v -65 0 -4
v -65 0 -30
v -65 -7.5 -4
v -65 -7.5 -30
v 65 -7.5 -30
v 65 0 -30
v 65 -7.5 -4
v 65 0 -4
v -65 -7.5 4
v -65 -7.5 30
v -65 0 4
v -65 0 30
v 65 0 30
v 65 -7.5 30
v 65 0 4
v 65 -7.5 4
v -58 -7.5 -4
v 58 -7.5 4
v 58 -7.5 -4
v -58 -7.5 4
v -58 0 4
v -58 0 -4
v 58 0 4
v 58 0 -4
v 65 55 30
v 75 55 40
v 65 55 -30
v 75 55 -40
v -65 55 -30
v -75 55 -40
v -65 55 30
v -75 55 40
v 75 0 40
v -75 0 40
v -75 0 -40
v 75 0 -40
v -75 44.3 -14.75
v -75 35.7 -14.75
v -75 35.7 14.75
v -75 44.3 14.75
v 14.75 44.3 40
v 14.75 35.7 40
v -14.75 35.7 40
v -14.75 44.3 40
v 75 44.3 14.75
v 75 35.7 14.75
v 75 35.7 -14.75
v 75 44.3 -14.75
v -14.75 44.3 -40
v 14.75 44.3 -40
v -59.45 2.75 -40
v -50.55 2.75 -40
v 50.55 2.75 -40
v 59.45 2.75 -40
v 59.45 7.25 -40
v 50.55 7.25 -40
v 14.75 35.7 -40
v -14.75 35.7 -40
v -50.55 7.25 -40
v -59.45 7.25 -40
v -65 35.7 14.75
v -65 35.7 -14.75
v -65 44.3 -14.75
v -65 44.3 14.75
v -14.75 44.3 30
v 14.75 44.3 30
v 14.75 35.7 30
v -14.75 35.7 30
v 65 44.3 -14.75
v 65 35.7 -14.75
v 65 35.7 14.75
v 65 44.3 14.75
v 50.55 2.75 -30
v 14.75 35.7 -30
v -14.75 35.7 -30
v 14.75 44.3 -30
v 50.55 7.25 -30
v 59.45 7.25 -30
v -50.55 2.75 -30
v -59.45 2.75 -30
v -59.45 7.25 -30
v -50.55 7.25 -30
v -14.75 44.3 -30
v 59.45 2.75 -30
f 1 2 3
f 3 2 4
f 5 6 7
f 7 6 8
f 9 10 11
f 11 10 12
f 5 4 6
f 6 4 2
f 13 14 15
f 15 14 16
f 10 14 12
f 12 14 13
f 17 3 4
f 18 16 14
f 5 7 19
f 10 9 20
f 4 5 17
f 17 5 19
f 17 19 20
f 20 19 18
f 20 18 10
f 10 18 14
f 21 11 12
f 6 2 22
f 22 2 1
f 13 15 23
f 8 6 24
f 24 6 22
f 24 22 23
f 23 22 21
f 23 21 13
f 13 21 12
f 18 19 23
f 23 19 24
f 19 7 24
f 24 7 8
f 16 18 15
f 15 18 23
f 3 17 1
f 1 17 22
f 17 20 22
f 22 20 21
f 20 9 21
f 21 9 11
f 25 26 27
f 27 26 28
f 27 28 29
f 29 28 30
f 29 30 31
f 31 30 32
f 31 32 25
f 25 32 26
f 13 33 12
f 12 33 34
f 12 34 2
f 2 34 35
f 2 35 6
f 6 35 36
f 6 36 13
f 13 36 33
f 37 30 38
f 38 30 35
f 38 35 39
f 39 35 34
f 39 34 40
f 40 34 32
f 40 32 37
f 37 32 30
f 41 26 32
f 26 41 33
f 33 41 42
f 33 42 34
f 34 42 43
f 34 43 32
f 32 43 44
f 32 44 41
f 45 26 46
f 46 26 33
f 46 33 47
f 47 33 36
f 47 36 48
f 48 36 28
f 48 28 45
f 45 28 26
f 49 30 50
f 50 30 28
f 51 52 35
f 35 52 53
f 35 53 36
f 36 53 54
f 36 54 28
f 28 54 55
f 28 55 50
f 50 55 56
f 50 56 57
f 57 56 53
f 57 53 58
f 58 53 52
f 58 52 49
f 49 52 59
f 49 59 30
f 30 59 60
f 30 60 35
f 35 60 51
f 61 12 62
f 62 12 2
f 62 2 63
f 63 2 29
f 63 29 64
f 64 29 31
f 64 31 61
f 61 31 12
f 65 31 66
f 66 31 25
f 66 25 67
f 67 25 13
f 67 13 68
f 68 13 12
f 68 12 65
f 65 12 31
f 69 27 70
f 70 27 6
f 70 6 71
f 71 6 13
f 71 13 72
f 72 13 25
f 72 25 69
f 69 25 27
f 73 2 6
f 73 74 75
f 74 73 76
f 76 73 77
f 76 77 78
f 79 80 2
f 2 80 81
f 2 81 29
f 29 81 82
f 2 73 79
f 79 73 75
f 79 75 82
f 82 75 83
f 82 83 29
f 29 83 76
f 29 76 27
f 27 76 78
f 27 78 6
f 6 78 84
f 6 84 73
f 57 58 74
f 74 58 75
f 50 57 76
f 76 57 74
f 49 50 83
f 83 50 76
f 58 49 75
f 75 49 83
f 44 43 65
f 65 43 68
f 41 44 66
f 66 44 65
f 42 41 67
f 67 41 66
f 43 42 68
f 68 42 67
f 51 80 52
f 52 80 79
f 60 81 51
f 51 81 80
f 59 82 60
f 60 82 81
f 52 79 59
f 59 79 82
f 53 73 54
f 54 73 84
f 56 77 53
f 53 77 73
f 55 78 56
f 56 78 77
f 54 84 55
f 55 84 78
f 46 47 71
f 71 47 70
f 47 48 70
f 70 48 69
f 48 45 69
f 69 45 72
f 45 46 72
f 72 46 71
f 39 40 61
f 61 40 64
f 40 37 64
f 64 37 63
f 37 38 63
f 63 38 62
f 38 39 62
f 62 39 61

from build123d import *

# Parameters (mm, degrees)
CROQUIS1_W              = 130
CROQUIS1_H              = 60
SALIENTE_EXTRUIR1_DEPTH = 7.5
CROQUIS1_3_W            = 150
CROQUIS1_3_H            = 80
CROQUIS1_3_W_2          = 130
CROQUIS1_3_H_2          = 60
SALIENTE_EXTRUIR2_DEPTH = 55
CROQUIS2_W              = 7
CROQUIS2_H              = 8
CORTAR_EXTRUIR1_DEPTH   = 102.242283657
CROQUIS3_W              = 29.5
CROQUIS3_H              = 8.6
CORTAR_EXTRUIR2_DEPTH   = 123.678441464
CROQUIS4_W              = 8.9
CROQUIS4_H              = 4.5
CORTAR_EXTRUIR3_DEPTH   = 10
CROQUIS5_W              = 29.5
CROQUIS5_H              = 8.6
CORTAR_EXTRUIR4_DEPTH   = 165.69669092


with BuildPart() as part:
    # Croquis1 → Saliente-Extruir1 (new body)
    with BuildSketch(Plane(origin=(0, 0, 0), x_dir=(1, 0, 0), z_dir=(0, 1, 0))):
        Rectangle(CROQUIS1_W, CROQUIS1_H)
    extrude(amount=-SALIENTE_EXTRUIR1_DEPTH)

    # Croquis2 → Cortar-Extruir1 (cut, through all)
    with BuildSketch(Plane(origin=(0, 0, 0), x_dir=(1, 0, 0), z_dir=(0, 1, 0))):
        with Locations((61.5, 0)):
            Rectangle(CROQUIS2_W, CROQUIS2_H)
        with Locations((-61.5, 0)):
            Rectangle(CROQUIS2_W, CROQUIS2_H)
    extrude(amount=-CORTAR_EXTRUIR1_DEPTH, mode=Mode.SUBTRACT)


with BuildPart() as body_2:
    # Croquis1<3> → Saliente-Extruir2 (new body)
    with BuildSketch(Plane(origin=(0, 0, 0), x_dir=(1, 0, 0), z_dir=(0, 1, 0))):
        Rectangle(CROQUIS1_3_W, CROQUIS1_3_H)
        Rectangle(CROQUIS1_3_W_2, CROQUIS1_3_H_2, mode=Mode.SUBTRACT)
    extrude(amount=SALIENTE_EXTRUIR2_DEPTH)

    # Croquis3 → Cortar-Extruir2 (cut, through all)
    with BuildSketch(Plane.XY.offset(40)):
        with Locations((0, 40)):
            Rectangle(CROQUIS3_W, CROQUIS3_H)
    extrude(amount=-CORTAR_EXTRUIR2_DEPTH, mode=Mode.SUBTRACT)

    # Croquis4 → Cortar-Extruir3 (cut)
    with BuildSketch(Plane(origin=(0, 0, -40), x_dir=(-1, 0, 0), z_dir=(0, 0, -1))):
        with Locations((-55, 5)):
            Rectangle(CROQUIS4_W, CROQUIS4_H)
        with Locations((55, 5)):
            Rectangle(CROQUIS4_W, CROQUIS4_H)
    extrude(amount=-CORTAR_EXTRUIR3_DEPTH, mode=Mode.SUBTRACT)

    # Croquis5 → Cortar-Extruir4 (cut, through all)
    with BuildSketch(Plane(origin=(75, 0, 0), x_dir=(0, 0, -1), z_dir=(1, 0, 0))):
        with Locations((0, 40)):
            Rectangle(CROQUIS5_W, CROQUIS5_H)
    extrude(amount=-CORTAR_EXTRUIR4_DEPTH, mode=Mode.SUBTRACT)


solid = Compound([part.part, body_2.part])
